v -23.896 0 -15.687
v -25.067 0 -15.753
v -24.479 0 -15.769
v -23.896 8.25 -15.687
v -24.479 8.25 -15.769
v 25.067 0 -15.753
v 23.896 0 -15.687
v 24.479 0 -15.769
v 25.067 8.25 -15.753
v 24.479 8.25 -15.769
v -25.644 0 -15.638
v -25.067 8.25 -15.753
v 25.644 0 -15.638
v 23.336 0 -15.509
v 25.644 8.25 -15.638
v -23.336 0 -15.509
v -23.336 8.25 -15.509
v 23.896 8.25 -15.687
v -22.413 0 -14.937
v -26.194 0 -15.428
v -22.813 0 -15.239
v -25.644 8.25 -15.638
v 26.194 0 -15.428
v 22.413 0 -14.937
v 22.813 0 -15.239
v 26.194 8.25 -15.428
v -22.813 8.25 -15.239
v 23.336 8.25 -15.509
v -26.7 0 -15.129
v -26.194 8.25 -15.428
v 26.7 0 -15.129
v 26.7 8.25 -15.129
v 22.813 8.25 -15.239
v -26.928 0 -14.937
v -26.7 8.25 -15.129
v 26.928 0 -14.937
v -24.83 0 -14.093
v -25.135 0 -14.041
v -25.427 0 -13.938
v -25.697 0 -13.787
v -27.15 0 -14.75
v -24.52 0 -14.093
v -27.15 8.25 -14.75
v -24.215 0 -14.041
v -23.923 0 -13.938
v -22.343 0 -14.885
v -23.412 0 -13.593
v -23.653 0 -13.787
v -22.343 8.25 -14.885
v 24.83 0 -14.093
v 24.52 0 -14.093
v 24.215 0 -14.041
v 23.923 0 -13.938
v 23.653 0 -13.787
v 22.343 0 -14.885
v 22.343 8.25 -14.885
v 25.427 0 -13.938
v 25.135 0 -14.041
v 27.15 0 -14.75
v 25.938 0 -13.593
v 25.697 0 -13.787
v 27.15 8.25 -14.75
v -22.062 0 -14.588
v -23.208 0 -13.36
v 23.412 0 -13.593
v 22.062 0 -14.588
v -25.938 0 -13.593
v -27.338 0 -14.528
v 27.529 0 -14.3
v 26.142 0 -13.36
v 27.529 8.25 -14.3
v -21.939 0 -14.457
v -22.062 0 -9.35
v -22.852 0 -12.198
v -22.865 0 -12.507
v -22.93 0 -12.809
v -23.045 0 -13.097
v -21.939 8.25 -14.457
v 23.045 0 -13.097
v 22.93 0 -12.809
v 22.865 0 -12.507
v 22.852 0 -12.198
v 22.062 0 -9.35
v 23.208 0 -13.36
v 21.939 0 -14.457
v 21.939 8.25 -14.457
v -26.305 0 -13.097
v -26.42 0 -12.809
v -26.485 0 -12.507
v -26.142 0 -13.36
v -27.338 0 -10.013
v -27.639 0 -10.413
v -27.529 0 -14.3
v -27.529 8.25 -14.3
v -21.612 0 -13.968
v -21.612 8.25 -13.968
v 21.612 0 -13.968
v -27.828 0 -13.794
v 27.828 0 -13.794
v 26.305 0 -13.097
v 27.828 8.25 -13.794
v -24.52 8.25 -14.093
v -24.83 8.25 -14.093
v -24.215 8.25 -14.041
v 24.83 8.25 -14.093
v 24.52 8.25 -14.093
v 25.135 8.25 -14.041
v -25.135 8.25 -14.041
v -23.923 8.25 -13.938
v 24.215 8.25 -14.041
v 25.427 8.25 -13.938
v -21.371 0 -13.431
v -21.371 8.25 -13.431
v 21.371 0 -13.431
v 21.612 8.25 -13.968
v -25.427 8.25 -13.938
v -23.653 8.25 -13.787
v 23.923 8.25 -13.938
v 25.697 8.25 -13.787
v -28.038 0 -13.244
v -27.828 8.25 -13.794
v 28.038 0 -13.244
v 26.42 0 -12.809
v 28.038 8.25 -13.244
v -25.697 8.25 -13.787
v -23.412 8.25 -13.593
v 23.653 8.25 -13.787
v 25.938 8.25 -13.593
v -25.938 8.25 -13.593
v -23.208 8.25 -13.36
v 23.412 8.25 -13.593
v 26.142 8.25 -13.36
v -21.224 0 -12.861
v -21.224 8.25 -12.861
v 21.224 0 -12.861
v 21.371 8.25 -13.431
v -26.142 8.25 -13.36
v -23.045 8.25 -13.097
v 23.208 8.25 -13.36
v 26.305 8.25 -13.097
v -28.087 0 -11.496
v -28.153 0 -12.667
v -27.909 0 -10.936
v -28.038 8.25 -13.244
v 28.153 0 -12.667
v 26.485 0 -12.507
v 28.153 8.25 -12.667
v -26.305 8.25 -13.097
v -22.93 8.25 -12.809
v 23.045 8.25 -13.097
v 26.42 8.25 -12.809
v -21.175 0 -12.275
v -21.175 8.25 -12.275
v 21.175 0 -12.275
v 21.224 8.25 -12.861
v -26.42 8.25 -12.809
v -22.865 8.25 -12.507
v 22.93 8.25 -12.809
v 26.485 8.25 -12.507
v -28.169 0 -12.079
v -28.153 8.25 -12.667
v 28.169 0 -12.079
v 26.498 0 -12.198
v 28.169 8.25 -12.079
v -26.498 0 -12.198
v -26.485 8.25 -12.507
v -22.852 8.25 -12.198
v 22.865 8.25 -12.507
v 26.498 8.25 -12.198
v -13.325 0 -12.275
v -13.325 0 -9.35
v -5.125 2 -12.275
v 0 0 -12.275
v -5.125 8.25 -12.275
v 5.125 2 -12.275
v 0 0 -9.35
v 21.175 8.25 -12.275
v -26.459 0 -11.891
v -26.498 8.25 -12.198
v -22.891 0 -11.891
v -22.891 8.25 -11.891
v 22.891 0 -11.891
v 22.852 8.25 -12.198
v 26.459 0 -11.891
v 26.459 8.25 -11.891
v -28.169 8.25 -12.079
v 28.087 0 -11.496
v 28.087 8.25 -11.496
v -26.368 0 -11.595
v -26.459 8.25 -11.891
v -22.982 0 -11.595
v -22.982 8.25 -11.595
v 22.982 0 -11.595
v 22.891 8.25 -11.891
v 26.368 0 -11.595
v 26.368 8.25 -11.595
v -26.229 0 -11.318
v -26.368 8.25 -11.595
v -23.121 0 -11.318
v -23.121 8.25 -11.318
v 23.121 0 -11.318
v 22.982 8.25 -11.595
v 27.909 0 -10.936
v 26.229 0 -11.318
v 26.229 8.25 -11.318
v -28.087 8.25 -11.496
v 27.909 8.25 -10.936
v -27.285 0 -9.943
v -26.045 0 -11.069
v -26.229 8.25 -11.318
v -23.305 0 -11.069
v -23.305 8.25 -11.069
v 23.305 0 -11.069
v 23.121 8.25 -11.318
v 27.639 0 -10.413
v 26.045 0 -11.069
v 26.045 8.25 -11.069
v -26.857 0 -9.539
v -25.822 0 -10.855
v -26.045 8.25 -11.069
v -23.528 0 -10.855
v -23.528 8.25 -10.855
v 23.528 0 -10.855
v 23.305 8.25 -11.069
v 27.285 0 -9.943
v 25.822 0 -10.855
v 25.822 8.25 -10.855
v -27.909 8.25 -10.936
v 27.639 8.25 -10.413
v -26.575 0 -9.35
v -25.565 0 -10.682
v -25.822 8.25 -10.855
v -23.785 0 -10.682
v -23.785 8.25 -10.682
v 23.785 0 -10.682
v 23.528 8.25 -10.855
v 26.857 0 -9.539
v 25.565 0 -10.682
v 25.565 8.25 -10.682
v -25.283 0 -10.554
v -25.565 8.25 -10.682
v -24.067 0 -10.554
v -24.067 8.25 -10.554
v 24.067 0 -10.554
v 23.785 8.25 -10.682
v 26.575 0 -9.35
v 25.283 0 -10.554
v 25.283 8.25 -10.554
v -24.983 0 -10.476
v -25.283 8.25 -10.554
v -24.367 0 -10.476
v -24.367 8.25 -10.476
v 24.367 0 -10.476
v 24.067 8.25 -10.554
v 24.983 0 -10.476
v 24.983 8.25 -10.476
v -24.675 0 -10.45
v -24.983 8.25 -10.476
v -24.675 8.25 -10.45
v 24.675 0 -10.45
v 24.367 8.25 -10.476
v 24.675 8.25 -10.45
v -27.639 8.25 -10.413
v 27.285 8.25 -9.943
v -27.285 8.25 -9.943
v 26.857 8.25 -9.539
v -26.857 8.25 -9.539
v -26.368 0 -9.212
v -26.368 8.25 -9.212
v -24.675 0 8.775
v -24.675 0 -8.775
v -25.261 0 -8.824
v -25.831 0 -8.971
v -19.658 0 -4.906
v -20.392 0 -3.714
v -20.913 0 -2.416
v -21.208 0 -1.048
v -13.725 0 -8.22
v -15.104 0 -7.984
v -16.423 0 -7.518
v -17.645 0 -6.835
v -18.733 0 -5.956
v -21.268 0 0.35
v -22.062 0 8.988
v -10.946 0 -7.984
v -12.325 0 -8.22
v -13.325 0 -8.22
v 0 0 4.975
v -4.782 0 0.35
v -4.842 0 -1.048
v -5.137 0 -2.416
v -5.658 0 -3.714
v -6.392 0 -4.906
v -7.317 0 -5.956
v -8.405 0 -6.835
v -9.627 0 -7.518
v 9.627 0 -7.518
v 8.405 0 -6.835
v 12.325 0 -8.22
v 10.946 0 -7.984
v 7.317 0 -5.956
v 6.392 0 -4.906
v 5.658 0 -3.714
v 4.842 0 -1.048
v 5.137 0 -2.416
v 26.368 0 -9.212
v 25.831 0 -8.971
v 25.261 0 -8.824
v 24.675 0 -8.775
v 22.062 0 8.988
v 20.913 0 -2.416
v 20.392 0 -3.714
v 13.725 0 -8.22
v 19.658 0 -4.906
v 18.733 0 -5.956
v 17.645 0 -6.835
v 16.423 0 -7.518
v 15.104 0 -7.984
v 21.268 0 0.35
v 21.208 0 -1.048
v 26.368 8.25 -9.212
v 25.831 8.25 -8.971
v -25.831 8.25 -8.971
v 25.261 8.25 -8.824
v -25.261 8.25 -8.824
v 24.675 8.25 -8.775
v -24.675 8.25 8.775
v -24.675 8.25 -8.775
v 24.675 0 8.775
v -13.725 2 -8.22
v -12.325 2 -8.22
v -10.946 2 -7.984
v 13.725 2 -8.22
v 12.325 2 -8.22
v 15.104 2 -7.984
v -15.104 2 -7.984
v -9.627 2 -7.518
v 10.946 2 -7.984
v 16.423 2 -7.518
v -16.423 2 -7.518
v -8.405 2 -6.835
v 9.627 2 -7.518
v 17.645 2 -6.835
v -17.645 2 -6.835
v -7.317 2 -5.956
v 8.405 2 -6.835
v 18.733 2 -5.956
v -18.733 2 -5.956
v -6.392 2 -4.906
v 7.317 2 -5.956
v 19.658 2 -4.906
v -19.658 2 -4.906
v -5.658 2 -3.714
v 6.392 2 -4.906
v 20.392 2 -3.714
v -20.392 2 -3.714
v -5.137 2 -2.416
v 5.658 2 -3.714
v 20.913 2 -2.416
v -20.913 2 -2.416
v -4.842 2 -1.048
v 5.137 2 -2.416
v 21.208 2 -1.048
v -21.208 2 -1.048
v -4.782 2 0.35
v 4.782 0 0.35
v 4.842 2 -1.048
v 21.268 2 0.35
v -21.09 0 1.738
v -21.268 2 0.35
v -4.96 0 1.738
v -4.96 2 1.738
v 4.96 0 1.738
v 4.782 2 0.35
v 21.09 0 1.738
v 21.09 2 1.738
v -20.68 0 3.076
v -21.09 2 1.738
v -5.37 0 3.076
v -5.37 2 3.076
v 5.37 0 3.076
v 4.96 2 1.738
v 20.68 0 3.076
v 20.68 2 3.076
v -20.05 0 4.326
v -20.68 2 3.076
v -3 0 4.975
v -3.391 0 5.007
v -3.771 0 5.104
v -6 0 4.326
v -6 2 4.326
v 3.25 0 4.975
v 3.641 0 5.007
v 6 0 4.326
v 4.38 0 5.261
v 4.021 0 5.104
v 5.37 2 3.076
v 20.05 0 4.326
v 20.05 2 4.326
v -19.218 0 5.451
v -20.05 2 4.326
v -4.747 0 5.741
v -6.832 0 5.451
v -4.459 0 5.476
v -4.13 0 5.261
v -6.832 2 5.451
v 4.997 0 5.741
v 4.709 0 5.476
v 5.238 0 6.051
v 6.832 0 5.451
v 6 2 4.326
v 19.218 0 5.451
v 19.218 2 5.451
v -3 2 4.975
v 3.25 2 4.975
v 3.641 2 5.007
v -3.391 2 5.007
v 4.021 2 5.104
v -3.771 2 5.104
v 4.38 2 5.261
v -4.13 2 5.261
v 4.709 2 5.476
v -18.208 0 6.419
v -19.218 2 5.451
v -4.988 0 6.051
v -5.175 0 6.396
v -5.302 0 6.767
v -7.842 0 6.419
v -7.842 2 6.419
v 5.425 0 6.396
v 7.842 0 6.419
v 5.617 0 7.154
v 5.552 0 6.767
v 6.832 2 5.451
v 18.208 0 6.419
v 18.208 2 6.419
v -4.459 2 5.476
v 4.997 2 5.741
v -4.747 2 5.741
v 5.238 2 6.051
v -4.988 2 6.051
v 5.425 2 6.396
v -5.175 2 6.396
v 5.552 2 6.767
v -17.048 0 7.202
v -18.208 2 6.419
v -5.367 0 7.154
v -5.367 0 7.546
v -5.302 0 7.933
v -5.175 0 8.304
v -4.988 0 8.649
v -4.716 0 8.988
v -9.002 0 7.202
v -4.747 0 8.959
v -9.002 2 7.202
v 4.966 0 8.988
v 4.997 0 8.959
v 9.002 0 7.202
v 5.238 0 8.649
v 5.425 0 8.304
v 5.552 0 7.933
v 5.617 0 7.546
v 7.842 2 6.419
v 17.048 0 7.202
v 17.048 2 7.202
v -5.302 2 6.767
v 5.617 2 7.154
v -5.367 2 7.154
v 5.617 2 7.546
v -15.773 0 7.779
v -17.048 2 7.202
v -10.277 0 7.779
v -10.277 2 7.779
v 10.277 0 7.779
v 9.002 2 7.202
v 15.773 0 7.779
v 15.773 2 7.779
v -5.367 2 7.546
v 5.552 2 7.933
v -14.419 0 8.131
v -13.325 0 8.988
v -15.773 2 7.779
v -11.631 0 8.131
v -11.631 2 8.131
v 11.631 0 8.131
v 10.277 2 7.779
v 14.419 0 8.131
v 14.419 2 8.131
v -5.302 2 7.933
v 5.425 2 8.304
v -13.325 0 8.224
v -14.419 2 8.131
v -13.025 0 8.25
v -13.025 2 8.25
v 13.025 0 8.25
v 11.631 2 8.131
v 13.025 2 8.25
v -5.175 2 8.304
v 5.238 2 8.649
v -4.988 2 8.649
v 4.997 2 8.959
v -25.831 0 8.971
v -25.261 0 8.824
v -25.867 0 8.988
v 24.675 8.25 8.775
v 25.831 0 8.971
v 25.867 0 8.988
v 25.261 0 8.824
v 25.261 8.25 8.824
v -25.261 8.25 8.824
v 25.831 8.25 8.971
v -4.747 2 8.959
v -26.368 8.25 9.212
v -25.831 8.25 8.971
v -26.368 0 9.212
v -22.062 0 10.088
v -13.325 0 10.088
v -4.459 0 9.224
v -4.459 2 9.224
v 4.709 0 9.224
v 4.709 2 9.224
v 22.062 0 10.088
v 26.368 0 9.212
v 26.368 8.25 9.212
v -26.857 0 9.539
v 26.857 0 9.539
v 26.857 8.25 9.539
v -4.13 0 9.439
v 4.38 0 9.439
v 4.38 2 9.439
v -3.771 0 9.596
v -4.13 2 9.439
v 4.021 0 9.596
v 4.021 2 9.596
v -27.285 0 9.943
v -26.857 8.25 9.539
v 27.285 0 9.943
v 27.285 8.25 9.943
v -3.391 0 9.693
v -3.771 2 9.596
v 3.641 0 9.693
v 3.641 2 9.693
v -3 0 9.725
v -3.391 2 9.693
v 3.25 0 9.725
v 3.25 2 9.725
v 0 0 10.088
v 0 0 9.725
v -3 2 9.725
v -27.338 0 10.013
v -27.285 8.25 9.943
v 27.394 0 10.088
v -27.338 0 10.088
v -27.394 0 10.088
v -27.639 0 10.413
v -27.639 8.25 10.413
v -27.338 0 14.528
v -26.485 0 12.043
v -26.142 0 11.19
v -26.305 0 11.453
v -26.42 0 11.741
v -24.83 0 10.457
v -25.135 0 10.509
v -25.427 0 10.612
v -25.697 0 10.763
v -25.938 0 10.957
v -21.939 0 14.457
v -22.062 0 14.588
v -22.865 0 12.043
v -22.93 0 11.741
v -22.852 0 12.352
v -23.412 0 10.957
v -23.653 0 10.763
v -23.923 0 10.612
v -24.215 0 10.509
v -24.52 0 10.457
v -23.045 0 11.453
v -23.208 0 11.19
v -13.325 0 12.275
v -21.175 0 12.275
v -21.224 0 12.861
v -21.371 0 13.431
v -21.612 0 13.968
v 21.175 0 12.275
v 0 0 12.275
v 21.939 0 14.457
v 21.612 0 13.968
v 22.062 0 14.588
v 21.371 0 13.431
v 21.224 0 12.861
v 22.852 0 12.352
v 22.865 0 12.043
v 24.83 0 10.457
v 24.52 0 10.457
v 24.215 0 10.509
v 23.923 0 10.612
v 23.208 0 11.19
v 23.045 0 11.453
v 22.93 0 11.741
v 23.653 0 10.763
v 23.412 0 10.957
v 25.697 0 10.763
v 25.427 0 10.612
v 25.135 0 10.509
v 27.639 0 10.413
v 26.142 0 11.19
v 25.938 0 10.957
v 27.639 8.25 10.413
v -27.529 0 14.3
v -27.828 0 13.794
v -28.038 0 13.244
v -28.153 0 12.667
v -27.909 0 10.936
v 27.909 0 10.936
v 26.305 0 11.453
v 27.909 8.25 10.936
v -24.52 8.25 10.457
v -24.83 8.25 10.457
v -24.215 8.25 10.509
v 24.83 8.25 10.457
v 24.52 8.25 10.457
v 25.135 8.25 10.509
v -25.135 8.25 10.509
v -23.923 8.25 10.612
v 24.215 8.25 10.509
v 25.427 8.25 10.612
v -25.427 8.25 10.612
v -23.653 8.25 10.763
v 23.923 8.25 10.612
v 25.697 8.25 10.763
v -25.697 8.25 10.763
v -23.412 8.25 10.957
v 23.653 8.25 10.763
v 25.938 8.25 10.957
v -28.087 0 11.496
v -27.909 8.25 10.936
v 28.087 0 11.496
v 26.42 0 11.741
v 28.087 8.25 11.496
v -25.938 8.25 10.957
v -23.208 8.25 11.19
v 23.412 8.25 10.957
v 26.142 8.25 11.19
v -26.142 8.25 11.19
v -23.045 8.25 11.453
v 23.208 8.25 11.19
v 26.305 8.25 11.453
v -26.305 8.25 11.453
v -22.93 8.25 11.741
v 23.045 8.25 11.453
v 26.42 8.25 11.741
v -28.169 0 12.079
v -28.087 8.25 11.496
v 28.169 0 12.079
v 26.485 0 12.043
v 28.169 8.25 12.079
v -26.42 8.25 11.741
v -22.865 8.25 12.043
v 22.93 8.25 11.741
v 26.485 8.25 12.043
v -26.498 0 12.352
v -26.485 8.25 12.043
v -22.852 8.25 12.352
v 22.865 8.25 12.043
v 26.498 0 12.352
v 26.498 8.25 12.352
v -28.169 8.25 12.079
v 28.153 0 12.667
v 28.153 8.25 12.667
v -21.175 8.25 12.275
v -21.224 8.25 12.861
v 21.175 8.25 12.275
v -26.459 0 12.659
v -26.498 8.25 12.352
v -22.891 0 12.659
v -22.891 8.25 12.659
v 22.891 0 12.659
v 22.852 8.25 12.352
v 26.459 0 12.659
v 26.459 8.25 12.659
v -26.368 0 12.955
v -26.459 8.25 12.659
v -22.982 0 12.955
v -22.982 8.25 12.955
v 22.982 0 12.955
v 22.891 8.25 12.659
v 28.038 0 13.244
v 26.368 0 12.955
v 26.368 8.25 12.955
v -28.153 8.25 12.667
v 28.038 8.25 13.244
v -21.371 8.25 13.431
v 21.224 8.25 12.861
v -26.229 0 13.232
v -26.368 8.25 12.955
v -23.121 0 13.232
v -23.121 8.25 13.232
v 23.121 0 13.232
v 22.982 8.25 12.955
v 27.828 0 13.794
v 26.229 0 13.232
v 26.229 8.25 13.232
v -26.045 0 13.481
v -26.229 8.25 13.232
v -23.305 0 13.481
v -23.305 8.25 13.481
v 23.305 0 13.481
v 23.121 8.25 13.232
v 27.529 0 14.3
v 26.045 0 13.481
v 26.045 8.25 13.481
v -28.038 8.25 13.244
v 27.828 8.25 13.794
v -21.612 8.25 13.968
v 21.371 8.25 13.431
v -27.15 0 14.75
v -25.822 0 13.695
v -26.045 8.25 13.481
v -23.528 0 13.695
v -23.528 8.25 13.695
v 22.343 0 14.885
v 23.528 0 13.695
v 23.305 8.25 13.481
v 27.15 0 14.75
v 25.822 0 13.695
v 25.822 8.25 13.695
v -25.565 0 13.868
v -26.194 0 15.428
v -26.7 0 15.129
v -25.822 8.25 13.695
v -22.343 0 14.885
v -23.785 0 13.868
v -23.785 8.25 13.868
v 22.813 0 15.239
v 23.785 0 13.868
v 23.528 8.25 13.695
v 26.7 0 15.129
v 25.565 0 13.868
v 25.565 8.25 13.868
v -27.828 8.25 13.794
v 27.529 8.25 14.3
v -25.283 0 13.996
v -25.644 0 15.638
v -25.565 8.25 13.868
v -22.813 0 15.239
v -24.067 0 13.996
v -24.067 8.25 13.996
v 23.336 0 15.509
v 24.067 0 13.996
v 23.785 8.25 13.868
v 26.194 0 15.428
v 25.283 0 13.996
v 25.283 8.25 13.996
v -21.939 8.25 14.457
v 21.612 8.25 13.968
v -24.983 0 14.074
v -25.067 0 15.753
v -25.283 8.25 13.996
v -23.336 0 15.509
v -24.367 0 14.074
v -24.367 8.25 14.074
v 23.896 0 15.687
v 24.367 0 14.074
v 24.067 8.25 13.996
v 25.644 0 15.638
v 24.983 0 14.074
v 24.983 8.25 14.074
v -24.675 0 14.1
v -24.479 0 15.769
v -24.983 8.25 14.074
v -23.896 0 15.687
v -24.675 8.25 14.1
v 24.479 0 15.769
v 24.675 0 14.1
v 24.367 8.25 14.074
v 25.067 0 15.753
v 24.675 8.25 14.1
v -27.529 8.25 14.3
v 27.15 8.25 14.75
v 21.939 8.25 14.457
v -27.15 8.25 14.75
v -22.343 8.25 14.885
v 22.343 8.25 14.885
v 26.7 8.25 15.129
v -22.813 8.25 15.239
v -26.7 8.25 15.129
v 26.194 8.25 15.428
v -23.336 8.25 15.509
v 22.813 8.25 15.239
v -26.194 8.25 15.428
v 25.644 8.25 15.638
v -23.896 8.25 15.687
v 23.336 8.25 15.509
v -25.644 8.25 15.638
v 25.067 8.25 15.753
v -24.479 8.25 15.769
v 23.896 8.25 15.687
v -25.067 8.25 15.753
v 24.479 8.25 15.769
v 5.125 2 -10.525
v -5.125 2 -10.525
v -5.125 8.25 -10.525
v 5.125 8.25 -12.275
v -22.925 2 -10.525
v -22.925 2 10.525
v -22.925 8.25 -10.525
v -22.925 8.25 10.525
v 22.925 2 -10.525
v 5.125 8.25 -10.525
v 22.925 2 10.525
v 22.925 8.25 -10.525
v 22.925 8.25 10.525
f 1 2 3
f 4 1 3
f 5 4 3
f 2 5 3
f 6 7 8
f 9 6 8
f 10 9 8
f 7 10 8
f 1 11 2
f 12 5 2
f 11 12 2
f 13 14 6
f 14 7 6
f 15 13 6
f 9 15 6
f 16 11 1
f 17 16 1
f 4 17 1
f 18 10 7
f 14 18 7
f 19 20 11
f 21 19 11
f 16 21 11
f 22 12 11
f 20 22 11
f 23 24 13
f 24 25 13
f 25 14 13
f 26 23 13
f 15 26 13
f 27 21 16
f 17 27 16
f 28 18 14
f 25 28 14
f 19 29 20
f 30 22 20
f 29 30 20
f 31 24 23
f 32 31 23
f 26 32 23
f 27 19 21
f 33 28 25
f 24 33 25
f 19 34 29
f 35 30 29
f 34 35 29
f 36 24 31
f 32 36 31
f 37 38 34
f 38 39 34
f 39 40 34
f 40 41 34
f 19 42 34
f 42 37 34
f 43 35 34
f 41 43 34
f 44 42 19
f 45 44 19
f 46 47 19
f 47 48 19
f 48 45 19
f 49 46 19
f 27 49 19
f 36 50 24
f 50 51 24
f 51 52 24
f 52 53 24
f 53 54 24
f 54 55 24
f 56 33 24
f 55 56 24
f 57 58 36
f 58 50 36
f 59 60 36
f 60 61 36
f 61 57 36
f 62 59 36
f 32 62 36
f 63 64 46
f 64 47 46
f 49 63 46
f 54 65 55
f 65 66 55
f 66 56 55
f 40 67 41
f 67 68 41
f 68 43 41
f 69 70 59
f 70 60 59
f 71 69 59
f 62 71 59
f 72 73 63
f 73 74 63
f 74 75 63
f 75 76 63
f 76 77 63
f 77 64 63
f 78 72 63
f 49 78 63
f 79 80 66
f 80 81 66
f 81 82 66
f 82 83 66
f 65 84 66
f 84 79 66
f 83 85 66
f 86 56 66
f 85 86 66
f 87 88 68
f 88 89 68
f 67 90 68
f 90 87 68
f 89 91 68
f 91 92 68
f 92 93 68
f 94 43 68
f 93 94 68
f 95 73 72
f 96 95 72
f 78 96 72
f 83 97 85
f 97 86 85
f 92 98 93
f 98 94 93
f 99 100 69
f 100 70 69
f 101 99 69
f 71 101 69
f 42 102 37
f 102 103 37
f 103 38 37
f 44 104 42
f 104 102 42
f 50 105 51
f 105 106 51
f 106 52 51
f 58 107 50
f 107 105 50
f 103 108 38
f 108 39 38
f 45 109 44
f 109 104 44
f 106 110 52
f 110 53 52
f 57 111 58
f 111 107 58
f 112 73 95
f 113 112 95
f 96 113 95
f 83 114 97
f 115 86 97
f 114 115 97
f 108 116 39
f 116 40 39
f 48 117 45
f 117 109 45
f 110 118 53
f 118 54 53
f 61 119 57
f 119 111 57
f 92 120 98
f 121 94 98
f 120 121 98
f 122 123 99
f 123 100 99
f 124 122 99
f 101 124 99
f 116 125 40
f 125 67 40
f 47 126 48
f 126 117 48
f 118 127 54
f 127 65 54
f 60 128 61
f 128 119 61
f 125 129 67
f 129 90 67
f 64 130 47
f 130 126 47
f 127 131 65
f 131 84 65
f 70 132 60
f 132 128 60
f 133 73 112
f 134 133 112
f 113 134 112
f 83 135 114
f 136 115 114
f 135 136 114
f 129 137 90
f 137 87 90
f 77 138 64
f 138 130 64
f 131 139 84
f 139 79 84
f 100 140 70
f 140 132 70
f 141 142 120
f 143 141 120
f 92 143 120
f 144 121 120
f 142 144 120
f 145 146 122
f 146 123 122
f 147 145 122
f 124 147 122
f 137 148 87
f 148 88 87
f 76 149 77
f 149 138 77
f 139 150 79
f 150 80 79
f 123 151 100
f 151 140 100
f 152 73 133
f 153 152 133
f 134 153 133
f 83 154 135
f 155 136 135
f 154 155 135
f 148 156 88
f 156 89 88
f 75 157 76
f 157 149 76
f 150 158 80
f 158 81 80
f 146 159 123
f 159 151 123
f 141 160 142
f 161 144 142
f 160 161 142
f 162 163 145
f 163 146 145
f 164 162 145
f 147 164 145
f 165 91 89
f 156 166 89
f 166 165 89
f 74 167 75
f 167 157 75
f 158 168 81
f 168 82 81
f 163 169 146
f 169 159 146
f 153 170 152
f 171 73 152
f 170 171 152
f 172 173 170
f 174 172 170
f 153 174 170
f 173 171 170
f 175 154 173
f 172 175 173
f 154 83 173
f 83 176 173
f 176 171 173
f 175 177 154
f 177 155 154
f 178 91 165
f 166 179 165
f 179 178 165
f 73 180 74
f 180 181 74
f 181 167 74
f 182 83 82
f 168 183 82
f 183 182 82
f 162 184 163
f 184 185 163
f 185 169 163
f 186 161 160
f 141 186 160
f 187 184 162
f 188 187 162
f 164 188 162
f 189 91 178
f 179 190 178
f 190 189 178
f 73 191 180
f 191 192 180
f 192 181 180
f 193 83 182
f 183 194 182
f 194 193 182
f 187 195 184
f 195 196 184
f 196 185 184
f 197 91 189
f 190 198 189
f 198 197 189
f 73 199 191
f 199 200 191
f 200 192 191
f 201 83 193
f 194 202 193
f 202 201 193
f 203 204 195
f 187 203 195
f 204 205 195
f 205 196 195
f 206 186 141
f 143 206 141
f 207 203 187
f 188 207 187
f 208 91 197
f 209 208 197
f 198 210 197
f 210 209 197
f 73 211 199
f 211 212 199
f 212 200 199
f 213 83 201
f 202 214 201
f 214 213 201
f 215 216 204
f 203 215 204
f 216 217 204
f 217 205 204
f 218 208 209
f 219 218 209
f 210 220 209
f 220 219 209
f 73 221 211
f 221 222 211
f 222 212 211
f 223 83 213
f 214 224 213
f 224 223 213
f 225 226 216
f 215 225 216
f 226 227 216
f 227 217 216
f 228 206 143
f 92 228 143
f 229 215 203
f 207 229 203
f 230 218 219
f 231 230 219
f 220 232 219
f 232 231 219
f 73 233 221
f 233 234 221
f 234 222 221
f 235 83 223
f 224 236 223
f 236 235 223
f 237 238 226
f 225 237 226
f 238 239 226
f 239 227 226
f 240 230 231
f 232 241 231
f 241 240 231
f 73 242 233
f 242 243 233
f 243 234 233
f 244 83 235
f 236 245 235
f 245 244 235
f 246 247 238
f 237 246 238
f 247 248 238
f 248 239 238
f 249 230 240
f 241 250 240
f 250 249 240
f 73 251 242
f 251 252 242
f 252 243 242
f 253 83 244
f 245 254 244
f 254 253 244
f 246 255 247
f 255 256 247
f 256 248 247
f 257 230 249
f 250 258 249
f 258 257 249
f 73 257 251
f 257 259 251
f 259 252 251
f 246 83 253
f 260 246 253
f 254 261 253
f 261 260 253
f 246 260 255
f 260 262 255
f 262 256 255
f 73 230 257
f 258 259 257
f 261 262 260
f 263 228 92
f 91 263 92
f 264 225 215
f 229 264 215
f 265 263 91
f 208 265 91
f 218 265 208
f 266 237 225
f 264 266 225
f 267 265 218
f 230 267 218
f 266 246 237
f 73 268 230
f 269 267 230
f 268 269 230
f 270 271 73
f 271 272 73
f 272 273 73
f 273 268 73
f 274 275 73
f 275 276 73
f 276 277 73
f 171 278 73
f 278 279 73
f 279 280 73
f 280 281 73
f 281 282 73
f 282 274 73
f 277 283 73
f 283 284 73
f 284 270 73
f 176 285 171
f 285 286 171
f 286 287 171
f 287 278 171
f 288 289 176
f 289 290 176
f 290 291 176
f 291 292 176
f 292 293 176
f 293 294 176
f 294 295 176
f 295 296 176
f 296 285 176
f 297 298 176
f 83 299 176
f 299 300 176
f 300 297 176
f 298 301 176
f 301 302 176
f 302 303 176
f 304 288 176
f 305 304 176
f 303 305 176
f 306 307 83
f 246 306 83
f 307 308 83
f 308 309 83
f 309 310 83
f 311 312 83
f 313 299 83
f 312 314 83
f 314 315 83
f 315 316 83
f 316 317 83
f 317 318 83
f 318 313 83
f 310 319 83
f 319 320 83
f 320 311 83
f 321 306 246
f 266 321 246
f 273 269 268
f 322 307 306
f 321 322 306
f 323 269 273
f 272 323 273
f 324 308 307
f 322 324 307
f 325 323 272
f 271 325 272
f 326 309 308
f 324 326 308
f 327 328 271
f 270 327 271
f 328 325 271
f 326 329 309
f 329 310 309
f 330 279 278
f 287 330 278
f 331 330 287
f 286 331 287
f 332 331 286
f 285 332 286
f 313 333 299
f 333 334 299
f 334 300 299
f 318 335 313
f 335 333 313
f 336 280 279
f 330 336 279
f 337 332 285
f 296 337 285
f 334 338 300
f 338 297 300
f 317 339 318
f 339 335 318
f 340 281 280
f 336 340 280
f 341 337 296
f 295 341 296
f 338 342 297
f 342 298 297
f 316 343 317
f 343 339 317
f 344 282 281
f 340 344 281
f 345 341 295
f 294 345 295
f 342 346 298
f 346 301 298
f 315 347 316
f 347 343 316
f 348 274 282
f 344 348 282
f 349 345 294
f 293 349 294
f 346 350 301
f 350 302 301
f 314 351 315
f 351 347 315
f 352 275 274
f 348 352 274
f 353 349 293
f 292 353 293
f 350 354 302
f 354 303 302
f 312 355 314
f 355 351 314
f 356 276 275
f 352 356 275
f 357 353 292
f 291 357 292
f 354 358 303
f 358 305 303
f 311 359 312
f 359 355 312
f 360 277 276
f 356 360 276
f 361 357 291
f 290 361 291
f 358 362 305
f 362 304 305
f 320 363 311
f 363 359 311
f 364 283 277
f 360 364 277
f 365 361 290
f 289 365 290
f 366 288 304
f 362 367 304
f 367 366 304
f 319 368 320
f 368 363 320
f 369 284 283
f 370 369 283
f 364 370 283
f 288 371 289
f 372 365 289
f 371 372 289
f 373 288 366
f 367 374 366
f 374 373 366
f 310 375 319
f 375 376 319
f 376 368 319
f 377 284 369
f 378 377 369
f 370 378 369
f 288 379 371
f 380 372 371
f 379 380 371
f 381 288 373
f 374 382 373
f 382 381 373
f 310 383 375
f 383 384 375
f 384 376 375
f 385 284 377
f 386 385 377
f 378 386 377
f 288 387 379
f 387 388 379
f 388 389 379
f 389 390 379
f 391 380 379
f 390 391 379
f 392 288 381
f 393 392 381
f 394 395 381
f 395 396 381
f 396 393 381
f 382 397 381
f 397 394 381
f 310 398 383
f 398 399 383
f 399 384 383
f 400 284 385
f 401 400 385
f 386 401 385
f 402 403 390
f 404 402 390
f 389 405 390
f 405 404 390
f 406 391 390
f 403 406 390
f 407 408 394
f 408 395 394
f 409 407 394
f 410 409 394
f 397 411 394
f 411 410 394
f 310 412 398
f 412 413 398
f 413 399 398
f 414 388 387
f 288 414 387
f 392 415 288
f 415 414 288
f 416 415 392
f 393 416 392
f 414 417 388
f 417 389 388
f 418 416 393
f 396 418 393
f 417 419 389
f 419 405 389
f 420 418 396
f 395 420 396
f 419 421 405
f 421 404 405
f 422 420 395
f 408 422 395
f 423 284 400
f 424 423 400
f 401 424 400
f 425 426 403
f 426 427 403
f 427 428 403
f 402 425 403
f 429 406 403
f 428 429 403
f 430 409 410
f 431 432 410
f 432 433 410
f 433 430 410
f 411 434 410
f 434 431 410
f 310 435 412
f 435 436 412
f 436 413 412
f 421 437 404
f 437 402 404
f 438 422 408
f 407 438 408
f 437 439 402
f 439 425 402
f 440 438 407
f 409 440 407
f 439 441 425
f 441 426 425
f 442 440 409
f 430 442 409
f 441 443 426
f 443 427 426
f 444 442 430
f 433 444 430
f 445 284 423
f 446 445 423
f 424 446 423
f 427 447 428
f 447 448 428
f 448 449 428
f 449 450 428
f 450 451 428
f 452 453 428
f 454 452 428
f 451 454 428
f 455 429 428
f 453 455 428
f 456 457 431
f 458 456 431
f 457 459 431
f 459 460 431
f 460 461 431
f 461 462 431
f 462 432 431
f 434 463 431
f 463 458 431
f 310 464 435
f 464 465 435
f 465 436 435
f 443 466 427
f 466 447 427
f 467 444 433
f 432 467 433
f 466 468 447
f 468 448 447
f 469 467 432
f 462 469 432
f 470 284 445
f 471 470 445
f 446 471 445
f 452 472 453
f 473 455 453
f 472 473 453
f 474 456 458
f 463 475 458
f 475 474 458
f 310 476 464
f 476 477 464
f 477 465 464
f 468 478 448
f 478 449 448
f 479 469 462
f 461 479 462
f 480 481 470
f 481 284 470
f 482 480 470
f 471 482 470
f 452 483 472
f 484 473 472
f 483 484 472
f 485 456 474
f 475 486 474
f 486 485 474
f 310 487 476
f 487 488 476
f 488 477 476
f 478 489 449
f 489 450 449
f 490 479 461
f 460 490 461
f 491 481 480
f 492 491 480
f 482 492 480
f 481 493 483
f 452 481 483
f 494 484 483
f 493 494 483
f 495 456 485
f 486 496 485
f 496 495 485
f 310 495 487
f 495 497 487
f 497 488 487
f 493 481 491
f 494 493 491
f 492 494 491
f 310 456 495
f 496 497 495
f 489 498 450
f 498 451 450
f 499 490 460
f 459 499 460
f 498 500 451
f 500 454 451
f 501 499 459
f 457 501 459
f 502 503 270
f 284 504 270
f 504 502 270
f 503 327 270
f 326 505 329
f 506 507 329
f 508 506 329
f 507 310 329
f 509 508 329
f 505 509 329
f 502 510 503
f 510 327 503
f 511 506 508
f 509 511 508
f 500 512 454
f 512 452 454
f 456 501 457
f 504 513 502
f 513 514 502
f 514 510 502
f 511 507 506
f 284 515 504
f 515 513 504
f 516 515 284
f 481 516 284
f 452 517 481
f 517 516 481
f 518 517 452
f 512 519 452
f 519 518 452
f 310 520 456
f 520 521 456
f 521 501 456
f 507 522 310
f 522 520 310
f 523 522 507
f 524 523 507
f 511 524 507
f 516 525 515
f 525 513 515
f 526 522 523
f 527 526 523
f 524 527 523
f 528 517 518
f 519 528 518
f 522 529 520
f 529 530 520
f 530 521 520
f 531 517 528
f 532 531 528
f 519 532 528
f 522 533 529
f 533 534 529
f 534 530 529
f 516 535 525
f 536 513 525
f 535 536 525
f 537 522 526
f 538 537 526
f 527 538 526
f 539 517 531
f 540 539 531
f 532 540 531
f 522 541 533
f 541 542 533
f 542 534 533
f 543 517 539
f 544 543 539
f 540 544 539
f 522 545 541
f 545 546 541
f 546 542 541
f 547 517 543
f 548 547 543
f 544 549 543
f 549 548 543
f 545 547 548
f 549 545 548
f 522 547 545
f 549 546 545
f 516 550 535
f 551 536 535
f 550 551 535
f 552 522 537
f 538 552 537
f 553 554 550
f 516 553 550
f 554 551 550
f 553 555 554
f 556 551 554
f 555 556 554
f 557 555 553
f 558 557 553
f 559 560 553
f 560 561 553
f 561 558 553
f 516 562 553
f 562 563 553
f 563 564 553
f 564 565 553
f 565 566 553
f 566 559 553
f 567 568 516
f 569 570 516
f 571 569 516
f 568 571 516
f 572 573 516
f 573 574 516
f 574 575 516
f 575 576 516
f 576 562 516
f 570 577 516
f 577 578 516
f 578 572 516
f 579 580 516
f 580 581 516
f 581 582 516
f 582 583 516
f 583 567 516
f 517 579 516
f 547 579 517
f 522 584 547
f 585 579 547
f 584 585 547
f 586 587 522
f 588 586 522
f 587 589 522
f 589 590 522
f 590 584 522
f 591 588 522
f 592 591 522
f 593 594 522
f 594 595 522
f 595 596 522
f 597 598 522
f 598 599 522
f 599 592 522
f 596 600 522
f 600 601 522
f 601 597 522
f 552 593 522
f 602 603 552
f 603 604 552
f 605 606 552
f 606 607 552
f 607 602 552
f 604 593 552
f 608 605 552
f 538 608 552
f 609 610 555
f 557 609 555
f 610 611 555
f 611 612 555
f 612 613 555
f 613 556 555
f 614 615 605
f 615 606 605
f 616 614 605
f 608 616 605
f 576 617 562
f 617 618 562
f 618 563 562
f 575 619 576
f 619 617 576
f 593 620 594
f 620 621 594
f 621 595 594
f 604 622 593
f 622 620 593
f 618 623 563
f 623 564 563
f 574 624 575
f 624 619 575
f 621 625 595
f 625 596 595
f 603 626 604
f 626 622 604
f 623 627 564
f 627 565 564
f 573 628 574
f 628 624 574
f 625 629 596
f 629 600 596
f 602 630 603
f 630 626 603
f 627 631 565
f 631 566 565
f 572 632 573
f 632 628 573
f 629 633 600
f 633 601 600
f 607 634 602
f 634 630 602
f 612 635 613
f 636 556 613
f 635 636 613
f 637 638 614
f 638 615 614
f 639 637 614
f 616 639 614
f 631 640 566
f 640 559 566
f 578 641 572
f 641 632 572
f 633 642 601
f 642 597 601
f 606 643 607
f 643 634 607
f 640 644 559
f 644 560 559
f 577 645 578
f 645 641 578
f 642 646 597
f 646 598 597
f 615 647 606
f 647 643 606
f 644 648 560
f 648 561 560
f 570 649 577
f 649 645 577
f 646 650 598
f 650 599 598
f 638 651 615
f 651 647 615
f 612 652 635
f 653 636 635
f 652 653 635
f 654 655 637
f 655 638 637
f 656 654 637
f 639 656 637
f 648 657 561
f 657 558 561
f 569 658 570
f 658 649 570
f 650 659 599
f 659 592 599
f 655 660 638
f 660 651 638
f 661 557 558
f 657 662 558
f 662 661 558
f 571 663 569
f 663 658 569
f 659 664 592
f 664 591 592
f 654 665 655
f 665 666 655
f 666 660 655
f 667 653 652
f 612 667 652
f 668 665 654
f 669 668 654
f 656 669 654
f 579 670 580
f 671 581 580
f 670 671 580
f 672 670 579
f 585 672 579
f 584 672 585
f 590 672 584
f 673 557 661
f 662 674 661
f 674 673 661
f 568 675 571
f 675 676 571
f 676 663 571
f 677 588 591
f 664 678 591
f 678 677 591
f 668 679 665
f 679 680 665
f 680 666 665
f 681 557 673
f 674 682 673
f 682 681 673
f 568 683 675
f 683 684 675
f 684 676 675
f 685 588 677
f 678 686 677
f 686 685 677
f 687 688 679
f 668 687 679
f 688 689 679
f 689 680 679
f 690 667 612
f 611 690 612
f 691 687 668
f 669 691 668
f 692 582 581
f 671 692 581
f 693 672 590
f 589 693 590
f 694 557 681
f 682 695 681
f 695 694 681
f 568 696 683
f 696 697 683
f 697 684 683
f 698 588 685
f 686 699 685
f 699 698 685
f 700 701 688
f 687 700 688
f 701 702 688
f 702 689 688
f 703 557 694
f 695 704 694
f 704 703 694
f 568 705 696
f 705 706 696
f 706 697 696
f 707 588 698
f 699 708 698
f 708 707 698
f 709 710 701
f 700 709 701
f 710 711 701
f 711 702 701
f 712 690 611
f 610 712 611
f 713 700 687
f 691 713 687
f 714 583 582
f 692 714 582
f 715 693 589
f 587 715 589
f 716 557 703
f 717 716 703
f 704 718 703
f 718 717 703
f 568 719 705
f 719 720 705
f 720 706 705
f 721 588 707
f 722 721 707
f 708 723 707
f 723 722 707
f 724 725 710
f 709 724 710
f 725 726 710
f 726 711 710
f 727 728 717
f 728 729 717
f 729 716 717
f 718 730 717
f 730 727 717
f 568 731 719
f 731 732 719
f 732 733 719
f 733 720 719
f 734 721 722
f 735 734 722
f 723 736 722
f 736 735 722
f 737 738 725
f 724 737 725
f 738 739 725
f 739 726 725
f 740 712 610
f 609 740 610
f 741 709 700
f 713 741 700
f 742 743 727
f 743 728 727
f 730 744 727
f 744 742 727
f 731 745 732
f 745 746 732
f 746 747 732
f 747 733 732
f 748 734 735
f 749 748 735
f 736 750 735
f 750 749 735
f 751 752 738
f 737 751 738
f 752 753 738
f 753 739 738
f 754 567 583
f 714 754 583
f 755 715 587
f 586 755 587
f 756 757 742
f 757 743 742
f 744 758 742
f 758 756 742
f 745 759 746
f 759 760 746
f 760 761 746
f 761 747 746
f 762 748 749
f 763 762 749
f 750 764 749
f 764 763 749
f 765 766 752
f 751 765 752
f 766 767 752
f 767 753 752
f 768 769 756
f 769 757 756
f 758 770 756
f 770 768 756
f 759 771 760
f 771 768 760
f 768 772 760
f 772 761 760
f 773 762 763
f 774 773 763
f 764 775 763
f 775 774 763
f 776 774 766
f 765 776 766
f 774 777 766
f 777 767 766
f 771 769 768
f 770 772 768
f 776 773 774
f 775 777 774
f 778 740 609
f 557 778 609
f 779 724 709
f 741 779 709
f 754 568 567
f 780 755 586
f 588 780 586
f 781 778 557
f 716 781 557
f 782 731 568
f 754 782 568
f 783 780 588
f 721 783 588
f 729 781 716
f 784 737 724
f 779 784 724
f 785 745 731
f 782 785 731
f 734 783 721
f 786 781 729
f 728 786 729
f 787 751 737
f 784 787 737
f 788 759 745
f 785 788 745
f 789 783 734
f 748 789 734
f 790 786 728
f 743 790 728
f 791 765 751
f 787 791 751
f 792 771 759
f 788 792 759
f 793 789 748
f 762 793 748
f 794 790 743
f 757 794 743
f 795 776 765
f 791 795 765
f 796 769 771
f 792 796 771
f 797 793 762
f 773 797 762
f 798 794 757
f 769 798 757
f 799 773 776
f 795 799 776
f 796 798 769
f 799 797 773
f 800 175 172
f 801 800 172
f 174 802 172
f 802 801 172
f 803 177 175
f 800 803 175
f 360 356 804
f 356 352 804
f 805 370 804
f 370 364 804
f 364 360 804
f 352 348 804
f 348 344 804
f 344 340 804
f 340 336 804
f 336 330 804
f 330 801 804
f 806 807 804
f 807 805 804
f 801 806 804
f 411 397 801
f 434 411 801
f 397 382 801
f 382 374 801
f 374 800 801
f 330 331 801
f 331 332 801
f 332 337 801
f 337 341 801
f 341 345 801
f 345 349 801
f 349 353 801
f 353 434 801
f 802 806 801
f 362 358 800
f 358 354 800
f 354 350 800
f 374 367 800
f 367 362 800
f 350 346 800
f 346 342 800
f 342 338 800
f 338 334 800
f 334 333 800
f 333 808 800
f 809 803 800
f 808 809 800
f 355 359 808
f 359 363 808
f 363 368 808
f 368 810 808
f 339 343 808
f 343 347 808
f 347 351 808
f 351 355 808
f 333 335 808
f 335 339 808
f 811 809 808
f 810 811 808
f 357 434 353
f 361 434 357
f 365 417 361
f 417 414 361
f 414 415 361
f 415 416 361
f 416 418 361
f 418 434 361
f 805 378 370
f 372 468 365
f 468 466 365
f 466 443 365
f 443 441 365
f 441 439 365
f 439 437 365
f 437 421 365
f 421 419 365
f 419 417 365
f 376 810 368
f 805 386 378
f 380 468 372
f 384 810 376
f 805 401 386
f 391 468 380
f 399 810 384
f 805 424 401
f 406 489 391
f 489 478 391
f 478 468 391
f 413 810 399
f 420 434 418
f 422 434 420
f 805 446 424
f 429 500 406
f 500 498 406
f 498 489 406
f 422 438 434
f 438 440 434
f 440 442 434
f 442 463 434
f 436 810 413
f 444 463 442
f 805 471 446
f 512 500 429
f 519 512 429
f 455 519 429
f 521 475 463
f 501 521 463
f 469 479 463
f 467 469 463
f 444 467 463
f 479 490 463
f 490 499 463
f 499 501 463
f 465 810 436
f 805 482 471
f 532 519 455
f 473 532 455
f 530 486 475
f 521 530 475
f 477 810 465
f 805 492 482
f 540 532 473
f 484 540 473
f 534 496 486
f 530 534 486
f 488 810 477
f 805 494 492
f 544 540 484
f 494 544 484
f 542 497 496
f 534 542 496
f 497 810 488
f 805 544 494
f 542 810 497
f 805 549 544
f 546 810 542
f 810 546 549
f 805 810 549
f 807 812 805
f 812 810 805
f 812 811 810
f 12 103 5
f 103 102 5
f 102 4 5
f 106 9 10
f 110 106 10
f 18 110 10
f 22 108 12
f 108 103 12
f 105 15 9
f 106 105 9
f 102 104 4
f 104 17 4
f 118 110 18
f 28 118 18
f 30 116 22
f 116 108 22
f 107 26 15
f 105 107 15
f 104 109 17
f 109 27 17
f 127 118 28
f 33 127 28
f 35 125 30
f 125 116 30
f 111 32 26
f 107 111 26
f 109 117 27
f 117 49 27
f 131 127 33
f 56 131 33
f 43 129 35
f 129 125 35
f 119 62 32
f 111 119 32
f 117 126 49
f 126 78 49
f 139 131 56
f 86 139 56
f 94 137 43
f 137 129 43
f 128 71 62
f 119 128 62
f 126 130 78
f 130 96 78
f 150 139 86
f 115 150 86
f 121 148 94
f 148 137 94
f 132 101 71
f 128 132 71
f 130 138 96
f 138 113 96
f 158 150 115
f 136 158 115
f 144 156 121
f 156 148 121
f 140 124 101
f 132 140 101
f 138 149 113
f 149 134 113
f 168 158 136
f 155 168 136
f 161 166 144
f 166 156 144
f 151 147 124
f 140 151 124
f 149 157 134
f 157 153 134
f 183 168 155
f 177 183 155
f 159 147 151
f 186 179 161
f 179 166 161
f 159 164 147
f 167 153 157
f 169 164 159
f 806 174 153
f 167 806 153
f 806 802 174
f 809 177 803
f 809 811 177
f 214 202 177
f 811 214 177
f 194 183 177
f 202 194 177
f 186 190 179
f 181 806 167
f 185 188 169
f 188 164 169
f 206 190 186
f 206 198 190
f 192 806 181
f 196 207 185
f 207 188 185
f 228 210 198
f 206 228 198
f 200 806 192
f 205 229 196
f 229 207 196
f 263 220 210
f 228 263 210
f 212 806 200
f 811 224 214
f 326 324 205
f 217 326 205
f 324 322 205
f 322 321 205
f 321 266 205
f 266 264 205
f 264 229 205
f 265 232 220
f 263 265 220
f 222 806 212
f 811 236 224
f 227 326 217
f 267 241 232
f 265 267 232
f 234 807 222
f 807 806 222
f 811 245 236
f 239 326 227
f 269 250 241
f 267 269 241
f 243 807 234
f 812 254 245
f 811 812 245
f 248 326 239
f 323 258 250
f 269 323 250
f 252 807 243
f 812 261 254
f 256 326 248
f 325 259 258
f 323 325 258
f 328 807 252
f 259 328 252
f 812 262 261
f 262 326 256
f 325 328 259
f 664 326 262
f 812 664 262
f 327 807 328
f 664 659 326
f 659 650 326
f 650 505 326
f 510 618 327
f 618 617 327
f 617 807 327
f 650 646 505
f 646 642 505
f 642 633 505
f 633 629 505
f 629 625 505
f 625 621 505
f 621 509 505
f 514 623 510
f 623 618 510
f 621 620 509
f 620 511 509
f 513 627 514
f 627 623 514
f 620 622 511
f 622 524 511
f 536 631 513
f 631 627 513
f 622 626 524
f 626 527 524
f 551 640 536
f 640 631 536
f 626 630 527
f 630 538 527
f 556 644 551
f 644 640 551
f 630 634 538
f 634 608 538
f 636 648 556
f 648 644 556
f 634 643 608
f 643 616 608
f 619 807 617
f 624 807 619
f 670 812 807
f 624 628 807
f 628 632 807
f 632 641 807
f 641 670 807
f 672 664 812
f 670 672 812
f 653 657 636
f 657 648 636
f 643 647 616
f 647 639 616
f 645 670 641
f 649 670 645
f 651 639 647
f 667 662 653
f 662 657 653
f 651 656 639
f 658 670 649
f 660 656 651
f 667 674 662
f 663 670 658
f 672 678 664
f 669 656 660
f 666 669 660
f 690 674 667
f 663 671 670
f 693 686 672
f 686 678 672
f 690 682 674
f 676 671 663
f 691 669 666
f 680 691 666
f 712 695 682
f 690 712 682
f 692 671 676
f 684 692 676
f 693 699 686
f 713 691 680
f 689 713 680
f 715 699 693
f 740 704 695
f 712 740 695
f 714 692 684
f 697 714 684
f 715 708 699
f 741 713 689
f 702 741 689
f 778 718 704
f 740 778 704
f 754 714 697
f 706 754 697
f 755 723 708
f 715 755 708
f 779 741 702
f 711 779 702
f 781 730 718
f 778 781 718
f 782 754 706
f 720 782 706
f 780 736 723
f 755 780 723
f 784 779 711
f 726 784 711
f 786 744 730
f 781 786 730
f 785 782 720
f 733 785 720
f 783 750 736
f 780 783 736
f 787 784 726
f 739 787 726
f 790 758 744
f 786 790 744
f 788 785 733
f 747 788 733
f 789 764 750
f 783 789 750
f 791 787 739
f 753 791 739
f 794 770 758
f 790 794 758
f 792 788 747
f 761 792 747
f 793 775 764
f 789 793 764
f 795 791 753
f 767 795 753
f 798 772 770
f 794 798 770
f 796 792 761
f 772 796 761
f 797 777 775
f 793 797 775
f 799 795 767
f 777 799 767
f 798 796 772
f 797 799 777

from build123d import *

# Parameters (mm, degrees)
SKETCH1_W               = 49.35
SKETCH1_H               = 24.55
BOSS_EXTRUDE1_DEPTH     = 2
BOSS_EXTRUDE2_DEPTH     = 6.25
BOSS_EXTRUDE3_START     = -2
BOSS_EXTRUDE3_DEPTH     = 8.25
CUT_EXTRUDE1_DEPTH      = 33.889873061
CUT_EXTRUDE1_DEPTH_BACK = 33.889873061
SKETCH3_R               = 8.25
SKETCH3_R_2             = 1.825


with BuildPart() as part:
    # Sketch1 → Boss-Extrude1 (new body)
    with BuildSketch(Plane(origin=(0, 0, 0), x_dir=(1, 0, 0), z_dir=(0, 1, 0))):
        Rectangle(SKETCH1_W, SKETCH1_H)
    extrude(amount=BOSS_EXTRUDE1_DEPTH)

    # Sketch2 → Boss-Extrude2 (add)
    with BuildSketch(Plane(origin=(0, 2, 0), x_dir=(1, 0, 0), z_dir=(0, 1, 0))):
        Polygon((-24.675, 12.275), (-24.675, -12.275), (24.675, -12.275), (24.675, 12.275), (5.125, 12.275), (5.125, 10.525), (22.925, 10.525), (22.925, -10.525), (-22.925, -10.525), (-22.925, 10.525), (-5.125, 10.525), (-5.125, 12.275), align=None)
    extrude(amount=BOSS_EXTRUDE2_DEPTH)

    # Sketch4 → Boss-Extrude3 (add)
    with BuildSketch(Plane(origin=(0, 2, 0), x_dir=(1, 0, 0), z_dir=(0, 1, 0)).offset(BOSS_EXTRUDE3_START)):
        with BuildLine():
            Line((-24.675, 12.275), (-24.675, 8.775))
            ThreePointArc((-24.675, 8.775), (-27.149873734, 14.749873734), (-21.175, 12.275))
            Line((-21.175, 12.275), (-24.675, 12.275))
        make_face()
        with BuildLine():
            Line((-24.675, -12.275), (-24.675, -8.775))
            ThreePointArc((-24.675, -8.775), (-27.149873734, -14.749873734), (-21.175, -12.275))
            Line((-21.175, -12.275), (-24.675, -12.275))
        make_face()
        with BuildLine():
            Line((24.675, -12.275), (21.175, -12.275))
            ThreePointArc((21.175, -12.275), (27.149873734, -14.749873734), (24.675, -8.775))
            Line((24.675, -8.775), (24.675, -12.275))
        make_face()
        with BuildLine():
            Line((24.675, 8.775), (24.675, 12.275))
            Line((24.675, 12.275), (21.175, 12.275))
            ThreePointArc((21.175, 12.275), (27.149873734, 14.749873734), (24.675, 8.775))
        make_face()
    extrude(amount=BOSS_EXTRUDE3_DEPTH)

    # Sketch3 → Cut-Extrude1 (cut, two sides: drawn at the far end of the back side and taken through both)
    with BuildSketch(Plane(origin=(0, 2, 0), x_dir=(1, 0, 0), z_dir=(0, 1, 0)).offset(-CUT_EXTRUDE1_DEPTH_BACK)):
        with Locations(Location((-13.025, 0, 0), (0, 0, 270))):
            Circle(SKETCH3_R)
        with Locations(Location((13.025, 0, 0), (0, 0, 270))):
            Circle(SKETCH3_R)
        with Locations(Location((-24.675, 12.275, 0), (0, 0, 270))):
            Circle(SKETCH3_R_2)
        with Locations(Location((-24.675, -12.275, 0), (0, 0, 270))):
            Circle(SKETCH3_R_2)
        with Locations(Location((24.675, 12.275, 0), (0, 0, 270))):
            Circle(SKETCH3_R_2)
        with Locations(Location((24.675, -12.275, 0), (0, 0, 270))):
            Circle(SKETCH3_R_2)
        with BuildLine():
            Line((-3, -4.975), (3.25, -4.975))
            ThreePointArc((3.25, -4.975), (5.625, -7.35), (3.25, -9.725))
            Line((3.25, -9.725), (-3, -9.725))
            ThreePointArc((-3, -9.725), (-5.375, -7.35), (-3, -4.975))
        make_face()
    extrude(amount=CUT_EXTRUDE1_DEPTH + CUT_EXTRUDE1_DEPTH_BACK, mode=Mode.SUBTRACT)


solid = part.part
